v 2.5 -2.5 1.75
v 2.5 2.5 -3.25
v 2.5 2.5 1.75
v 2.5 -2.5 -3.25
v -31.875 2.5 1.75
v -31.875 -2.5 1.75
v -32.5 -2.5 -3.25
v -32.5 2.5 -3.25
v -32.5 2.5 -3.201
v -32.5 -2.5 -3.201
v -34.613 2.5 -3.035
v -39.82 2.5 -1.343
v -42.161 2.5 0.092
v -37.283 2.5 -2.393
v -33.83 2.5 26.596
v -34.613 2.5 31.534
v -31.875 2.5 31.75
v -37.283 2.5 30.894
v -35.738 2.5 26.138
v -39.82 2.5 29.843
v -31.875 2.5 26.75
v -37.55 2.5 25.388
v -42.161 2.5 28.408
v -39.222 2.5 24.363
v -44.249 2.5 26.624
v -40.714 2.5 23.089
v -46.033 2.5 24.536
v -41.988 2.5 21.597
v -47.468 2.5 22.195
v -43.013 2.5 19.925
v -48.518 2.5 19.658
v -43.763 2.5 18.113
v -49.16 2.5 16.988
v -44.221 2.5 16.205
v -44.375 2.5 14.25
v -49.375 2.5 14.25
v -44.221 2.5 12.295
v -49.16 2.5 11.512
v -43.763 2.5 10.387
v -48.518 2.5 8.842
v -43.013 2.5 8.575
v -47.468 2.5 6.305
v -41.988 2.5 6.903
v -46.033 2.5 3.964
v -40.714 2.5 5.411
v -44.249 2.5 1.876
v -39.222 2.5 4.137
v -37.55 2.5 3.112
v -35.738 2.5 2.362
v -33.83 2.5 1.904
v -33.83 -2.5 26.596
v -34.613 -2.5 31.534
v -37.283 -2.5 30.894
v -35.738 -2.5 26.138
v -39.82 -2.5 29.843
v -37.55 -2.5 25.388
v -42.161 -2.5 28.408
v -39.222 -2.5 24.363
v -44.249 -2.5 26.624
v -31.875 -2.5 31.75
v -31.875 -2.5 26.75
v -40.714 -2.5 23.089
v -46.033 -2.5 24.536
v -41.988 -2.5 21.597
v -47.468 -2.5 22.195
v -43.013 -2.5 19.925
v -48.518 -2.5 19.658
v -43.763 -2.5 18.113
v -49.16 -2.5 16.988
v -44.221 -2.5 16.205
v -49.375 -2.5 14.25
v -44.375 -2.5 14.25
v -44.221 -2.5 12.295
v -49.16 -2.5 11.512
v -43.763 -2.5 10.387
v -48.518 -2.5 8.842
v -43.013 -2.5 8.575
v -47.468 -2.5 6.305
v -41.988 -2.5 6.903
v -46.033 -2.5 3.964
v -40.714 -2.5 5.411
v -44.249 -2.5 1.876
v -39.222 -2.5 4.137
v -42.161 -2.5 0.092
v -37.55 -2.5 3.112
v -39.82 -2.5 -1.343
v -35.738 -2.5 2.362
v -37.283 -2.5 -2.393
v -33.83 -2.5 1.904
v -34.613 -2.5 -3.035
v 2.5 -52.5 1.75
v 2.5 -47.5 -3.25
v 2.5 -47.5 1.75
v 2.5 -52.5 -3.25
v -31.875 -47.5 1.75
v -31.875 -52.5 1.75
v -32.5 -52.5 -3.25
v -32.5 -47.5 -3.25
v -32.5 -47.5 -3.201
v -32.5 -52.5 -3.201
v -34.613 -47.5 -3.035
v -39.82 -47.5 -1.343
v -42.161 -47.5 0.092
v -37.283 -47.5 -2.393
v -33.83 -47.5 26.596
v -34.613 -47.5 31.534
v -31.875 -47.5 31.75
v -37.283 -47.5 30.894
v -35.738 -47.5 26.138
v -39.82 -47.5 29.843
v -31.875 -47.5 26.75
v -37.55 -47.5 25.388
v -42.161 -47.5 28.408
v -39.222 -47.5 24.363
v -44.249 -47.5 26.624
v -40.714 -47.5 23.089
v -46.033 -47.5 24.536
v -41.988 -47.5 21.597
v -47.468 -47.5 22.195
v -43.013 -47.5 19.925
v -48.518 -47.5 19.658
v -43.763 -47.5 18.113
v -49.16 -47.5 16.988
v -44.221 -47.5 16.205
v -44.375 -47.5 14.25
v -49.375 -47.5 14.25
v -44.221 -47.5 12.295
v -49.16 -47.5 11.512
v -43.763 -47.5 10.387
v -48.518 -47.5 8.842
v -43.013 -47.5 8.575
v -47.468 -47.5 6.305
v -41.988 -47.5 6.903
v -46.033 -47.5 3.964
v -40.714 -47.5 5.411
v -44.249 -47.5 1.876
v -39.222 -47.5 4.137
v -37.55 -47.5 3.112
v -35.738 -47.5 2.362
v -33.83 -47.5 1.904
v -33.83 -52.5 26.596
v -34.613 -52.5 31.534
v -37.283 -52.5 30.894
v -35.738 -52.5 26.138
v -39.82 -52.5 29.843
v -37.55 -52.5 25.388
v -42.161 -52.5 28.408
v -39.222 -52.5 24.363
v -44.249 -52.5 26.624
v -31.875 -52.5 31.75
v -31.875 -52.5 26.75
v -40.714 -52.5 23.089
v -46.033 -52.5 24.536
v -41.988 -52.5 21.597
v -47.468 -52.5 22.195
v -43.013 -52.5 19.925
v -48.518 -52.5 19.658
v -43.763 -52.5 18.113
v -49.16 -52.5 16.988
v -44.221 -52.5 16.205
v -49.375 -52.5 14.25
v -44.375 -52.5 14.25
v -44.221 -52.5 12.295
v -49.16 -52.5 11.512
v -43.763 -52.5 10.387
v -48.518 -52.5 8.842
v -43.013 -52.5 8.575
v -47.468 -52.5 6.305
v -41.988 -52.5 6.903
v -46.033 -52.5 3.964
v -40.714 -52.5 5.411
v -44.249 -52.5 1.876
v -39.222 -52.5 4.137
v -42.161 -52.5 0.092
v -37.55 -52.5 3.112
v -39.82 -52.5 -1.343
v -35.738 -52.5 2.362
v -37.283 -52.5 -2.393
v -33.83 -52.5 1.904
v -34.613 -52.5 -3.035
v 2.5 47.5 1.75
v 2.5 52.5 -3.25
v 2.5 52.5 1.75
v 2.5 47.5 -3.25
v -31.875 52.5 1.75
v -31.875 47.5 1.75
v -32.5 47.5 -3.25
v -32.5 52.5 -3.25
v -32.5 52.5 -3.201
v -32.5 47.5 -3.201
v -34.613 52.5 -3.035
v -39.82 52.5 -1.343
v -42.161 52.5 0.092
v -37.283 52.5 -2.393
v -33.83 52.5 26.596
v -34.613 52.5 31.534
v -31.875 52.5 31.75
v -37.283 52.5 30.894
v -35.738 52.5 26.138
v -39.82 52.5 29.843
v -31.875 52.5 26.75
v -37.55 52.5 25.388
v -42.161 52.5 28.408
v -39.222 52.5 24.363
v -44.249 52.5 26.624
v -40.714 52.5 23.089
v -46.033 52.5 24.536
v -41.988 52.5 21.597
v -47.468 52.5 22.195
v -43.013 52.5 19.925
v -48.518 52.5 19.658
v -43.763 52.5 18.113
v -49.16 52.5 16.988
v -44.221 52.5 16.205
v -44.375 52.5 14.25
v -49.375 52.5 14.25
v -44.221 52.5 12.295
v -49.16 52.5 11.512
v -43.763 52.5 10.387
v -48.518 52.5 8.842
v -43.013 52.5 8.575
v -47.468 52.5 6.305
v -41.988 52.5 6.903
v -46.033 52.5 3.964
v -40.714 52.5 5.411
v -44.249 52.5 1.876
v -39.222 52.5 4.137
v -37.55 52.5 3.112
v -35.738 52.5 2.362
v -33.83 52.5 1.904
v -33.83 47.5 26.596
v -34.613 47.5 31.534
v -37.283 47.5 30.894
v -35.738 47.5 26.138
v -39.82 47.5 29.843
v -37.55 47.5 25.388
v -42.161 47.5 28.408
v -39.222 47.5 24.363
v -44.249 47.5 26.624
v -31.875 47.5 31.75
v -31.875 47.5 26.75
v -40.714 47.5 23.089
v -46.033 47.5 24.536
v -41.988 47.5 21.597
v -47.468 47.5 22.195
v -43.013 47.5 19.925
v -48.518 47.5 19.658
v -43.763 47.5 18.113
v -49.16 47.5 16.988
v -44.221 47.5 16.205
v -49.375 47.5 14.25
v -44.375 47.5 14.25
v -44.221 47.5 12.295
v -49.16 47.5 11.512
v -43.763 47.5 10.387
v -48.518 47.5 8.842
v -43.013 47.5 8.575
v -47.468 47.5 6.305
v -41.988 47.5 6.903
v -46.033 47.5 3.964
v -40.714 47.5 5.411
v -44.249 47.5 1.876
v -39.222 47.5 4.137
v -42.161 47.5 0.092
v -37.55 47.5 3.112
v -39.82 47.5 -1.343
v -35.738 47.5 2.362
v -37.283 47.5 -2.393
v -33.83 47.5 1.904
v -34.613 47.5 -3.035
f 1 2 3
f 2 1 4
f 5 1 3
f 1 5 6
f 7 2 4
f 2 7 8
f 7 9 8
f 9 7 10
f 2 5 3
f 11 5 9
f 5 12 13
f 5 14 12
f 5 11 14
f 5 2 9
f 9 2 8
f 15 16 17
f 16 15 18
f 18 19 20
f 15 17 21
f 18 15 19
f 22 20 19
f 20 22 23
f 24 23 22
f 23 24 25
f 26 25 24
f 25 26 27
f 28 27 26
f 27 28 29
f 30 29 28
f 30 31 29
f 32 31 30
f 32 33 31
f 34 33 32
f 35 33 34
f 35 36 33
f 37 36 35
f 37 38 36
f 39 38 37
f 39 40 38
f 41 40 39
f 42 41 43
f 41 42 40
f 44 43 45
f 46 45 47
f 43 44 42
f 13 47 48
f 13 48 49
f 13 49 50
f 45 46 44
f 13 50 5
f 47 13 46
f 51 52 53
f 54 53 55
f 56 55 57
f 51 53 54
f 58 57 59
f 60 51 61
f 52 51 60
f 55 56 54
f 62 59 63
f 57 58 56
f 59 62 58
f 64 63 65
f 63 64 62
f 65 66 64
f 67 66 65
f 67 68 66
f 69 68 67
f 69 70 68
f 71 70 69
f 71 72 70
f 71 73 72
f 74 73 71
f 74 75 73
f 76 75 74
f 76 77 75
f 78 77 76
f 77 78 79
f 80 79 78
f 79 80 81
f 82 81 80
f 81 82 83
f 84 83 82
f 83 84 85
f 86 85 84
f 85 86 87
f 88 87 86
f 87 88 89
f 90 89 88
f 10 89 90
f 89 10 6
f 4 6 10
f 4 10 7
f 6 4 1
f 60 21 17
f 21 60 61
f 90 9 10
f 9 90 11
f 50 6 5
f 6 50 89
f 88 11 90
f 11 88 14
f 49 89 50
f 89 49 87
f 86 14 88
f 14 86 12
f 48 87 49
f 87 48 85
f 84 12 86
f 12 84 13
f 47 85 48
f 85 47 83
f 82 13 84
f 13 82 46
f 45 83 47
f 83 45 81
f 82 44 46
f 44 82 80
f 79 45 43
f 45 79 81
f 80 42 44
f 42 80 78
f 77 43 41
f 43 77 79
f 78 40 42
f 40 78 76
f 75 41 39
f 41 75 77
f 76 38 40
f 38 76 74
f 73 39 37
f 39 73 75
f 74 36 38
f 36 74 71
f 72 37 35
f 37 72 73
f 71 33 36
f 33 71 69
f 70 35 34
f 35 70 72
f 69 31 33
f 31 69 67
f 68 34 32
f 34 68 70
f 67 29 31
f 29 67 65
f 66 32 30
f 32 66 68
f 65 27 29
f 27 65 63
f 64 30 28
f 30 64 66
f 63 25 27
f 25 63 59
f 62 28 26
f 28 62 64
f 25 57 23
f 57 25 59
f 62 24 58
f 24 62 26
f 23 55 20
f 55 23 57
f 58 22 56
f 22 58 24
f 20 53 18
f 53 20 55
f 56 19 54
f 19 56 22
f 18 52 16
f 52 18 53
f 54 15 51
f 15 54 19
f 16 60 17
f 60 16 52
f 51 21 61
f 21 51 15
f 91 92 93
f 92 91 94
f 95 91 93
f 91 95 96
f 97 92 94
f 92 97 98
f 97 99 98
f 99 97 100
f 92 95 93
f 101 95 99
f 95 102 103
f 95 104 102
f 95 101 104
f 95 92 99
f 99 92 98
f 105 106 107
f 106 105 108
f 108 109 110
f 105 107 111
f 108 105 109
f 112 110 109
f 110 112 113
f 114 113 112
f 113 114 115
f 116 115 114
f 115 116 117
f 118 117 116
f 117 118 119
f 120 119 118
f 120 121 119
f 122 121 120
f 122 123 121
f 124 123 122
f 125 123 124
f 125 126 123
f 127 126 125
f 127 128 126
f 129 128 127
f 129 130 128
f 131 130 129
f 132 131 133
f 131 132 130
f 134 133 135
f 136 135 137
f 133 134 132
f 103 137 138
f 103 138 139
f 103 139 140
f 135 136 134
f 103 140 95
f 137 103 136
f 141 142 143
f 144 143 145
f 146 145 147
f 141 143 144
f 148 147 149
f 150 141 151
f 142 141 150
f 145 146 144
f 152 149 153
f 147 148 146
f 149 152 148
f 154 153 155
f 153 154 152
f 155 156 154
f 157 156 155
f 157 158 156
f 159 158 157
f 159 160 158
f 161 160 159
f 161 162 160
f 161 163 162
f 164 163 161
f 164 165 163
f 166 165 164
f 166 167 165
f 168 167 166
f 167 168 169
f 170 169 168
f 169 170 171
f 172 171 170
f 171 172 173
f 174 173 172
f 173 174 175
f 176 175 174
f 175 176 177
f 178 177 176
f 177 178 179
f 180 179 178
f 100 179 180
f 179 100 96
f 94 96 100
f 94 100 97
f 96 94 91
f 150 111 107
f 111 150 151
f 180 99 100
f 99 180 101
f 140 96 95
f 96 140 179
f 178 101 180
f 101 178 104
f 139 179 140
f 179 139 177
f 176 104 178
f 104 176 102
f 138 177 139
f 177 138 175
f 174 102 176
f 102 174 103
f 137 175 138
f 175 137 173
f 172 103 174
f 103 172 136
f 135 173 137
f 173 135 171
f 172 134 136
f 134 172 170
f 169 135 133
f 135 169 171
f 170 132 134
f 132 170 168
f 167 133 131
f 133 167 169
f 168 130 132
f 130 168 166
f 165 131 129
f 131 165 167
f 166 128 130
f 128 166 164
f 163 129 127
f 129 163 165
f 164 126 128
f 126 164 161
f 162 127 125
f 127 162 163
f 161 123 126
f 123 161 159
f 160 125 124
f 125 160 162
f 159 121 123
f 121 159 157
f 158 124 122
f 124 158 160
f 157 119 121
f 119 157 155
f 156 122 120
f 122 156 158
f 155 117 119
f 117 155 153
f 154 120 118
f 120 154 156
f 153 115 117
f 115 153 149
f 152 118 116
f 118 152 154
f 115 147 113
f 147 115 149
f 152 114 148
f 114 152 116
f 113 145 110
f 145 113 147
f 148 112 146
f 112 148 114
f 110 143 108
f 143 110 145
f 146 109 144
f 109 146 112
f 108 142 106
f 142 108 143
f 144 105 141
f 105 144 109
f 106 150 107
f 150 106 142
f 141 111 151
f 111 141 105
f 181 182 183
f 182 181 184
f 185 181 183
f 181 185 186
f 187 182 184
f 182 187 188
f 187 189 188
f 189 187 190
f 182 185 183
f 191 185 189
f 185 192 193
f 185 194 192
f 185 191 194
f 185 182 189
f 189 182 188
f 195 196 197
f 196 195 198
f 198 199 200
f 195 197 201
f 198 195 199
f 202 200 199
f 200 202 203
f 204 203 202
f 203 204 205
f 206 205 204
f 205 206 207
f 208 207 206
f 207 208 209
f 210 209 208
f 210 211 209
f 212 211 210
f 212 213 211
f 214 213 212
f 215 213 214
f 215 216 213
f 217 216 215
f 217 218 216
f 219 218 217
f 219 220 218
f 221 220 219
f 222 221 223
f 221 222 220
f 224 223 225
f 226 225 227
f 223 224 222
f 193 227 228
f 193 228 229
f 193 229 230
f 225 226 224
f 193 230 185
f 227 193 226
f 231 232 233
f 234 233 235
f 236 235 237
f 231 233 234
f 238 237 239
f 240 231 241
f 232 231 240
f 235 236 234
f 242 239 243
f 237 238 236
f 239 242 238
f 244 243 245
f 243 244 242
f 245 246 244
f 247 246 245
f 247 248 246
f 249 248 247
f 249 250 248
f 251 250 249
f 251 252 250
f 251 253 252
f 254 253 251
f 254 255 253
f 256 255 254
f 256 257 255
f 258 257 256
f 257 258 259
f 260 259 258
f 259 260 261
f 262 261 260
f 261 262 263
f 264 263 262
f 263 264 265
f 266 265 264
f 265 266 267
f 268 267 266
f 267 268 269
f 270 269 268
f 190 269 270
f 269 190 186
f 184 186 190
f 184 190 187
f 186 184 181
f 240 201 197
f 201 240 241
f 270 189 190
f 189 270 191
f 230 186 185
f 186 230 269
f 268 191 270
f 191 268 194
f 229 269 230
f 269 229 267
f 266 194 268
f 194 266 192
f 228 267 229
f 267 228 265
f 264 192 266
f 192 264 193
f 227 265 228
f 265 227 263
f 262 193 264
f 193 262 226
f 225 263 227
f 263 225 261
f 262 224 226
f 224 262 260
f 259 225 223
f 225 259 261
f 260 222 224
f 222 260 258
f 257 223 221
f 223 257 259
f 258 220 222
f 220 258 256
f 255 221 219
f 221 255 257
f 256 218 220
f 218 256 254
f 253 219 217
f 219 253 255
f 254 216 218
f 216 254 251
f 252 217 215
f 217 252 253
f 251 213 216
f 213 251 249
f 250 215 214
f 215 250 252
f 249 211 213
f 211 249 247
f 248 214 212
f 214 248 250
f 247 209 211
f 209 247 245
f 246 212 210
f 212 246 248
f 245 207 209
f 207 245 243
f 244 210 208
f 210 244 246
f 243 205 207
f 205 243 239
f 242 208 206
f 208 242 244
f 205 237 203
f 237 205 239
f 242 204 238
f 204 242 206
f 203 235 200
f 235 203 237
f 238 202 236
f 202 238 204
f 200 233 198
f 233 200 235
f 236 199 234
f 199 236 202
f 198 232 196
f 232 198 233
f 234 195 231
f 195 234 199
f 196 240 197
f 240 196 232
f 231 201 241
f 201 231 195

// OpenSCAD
$fn = 100;
translate(v = [-15, 0, 0])
{
  translate(v = [0, 0, -0.75])
  {
    union()
    {
      union()
      {
        cube(size = [35, 5, 5], center = true);
        translate(v = [0, 0, 15])
        {
          translate(v = [-24.375, 0, 0])
          {
            rotate(a = [0, 90, 90], v = undef)
            {
              translate(v = [0, -7.5, 0])
              {
                rotate_extrude(angle = 180, convexity = 4, $fn = 40)
                {
                  translate(v = [15, 0, 0])
                  {
                    square(size = [5, 5], center = true);
                  }
                }
              }
            }
          }
        }
      }
      translate(v = [0, -50, 0])
      {
        union()
        {
          cube(size = [35, 5, 5], center = true);
          translate(v = [0, 0, 15])
          {
            translate(v = [-24.375, 0, 0])
            {
              rotate(a = [0, 90, 90], v = undef)
              {
                translate(v = [0, -7.5, 0])
                {
                  rotate_extrude(angle = 180, convexity = 4, $fn = 40)
                  {
                    translate(v = [15, 0, 0])
                    {
                      square(size = [5, 5], center = true);
                    }
                  }
                }
              }
            }
          }
        }
      }
      translate(v = [0, 50, 0])
      {
        union()
        {
          cube(size = [35, 5, 5], center = true);
          translate(v = [0, 0, 15])
          {
            translate(v = [-24.375, 0, 0])
            {
              rotate(a = [0, 90, 90], v = undef)
              {
                translate(v = [0, -7.5, 0])
                {
                  rotate_extrude(angle = 180, convexity = 4, $fn = 40)
                  {
                    translate(v = [15, 0, 0])
                    {
                      square(size = [5, 5], center = true);
                    }
                  }
                }
              }
            }
          }
        }
      }
    }
  }
}
